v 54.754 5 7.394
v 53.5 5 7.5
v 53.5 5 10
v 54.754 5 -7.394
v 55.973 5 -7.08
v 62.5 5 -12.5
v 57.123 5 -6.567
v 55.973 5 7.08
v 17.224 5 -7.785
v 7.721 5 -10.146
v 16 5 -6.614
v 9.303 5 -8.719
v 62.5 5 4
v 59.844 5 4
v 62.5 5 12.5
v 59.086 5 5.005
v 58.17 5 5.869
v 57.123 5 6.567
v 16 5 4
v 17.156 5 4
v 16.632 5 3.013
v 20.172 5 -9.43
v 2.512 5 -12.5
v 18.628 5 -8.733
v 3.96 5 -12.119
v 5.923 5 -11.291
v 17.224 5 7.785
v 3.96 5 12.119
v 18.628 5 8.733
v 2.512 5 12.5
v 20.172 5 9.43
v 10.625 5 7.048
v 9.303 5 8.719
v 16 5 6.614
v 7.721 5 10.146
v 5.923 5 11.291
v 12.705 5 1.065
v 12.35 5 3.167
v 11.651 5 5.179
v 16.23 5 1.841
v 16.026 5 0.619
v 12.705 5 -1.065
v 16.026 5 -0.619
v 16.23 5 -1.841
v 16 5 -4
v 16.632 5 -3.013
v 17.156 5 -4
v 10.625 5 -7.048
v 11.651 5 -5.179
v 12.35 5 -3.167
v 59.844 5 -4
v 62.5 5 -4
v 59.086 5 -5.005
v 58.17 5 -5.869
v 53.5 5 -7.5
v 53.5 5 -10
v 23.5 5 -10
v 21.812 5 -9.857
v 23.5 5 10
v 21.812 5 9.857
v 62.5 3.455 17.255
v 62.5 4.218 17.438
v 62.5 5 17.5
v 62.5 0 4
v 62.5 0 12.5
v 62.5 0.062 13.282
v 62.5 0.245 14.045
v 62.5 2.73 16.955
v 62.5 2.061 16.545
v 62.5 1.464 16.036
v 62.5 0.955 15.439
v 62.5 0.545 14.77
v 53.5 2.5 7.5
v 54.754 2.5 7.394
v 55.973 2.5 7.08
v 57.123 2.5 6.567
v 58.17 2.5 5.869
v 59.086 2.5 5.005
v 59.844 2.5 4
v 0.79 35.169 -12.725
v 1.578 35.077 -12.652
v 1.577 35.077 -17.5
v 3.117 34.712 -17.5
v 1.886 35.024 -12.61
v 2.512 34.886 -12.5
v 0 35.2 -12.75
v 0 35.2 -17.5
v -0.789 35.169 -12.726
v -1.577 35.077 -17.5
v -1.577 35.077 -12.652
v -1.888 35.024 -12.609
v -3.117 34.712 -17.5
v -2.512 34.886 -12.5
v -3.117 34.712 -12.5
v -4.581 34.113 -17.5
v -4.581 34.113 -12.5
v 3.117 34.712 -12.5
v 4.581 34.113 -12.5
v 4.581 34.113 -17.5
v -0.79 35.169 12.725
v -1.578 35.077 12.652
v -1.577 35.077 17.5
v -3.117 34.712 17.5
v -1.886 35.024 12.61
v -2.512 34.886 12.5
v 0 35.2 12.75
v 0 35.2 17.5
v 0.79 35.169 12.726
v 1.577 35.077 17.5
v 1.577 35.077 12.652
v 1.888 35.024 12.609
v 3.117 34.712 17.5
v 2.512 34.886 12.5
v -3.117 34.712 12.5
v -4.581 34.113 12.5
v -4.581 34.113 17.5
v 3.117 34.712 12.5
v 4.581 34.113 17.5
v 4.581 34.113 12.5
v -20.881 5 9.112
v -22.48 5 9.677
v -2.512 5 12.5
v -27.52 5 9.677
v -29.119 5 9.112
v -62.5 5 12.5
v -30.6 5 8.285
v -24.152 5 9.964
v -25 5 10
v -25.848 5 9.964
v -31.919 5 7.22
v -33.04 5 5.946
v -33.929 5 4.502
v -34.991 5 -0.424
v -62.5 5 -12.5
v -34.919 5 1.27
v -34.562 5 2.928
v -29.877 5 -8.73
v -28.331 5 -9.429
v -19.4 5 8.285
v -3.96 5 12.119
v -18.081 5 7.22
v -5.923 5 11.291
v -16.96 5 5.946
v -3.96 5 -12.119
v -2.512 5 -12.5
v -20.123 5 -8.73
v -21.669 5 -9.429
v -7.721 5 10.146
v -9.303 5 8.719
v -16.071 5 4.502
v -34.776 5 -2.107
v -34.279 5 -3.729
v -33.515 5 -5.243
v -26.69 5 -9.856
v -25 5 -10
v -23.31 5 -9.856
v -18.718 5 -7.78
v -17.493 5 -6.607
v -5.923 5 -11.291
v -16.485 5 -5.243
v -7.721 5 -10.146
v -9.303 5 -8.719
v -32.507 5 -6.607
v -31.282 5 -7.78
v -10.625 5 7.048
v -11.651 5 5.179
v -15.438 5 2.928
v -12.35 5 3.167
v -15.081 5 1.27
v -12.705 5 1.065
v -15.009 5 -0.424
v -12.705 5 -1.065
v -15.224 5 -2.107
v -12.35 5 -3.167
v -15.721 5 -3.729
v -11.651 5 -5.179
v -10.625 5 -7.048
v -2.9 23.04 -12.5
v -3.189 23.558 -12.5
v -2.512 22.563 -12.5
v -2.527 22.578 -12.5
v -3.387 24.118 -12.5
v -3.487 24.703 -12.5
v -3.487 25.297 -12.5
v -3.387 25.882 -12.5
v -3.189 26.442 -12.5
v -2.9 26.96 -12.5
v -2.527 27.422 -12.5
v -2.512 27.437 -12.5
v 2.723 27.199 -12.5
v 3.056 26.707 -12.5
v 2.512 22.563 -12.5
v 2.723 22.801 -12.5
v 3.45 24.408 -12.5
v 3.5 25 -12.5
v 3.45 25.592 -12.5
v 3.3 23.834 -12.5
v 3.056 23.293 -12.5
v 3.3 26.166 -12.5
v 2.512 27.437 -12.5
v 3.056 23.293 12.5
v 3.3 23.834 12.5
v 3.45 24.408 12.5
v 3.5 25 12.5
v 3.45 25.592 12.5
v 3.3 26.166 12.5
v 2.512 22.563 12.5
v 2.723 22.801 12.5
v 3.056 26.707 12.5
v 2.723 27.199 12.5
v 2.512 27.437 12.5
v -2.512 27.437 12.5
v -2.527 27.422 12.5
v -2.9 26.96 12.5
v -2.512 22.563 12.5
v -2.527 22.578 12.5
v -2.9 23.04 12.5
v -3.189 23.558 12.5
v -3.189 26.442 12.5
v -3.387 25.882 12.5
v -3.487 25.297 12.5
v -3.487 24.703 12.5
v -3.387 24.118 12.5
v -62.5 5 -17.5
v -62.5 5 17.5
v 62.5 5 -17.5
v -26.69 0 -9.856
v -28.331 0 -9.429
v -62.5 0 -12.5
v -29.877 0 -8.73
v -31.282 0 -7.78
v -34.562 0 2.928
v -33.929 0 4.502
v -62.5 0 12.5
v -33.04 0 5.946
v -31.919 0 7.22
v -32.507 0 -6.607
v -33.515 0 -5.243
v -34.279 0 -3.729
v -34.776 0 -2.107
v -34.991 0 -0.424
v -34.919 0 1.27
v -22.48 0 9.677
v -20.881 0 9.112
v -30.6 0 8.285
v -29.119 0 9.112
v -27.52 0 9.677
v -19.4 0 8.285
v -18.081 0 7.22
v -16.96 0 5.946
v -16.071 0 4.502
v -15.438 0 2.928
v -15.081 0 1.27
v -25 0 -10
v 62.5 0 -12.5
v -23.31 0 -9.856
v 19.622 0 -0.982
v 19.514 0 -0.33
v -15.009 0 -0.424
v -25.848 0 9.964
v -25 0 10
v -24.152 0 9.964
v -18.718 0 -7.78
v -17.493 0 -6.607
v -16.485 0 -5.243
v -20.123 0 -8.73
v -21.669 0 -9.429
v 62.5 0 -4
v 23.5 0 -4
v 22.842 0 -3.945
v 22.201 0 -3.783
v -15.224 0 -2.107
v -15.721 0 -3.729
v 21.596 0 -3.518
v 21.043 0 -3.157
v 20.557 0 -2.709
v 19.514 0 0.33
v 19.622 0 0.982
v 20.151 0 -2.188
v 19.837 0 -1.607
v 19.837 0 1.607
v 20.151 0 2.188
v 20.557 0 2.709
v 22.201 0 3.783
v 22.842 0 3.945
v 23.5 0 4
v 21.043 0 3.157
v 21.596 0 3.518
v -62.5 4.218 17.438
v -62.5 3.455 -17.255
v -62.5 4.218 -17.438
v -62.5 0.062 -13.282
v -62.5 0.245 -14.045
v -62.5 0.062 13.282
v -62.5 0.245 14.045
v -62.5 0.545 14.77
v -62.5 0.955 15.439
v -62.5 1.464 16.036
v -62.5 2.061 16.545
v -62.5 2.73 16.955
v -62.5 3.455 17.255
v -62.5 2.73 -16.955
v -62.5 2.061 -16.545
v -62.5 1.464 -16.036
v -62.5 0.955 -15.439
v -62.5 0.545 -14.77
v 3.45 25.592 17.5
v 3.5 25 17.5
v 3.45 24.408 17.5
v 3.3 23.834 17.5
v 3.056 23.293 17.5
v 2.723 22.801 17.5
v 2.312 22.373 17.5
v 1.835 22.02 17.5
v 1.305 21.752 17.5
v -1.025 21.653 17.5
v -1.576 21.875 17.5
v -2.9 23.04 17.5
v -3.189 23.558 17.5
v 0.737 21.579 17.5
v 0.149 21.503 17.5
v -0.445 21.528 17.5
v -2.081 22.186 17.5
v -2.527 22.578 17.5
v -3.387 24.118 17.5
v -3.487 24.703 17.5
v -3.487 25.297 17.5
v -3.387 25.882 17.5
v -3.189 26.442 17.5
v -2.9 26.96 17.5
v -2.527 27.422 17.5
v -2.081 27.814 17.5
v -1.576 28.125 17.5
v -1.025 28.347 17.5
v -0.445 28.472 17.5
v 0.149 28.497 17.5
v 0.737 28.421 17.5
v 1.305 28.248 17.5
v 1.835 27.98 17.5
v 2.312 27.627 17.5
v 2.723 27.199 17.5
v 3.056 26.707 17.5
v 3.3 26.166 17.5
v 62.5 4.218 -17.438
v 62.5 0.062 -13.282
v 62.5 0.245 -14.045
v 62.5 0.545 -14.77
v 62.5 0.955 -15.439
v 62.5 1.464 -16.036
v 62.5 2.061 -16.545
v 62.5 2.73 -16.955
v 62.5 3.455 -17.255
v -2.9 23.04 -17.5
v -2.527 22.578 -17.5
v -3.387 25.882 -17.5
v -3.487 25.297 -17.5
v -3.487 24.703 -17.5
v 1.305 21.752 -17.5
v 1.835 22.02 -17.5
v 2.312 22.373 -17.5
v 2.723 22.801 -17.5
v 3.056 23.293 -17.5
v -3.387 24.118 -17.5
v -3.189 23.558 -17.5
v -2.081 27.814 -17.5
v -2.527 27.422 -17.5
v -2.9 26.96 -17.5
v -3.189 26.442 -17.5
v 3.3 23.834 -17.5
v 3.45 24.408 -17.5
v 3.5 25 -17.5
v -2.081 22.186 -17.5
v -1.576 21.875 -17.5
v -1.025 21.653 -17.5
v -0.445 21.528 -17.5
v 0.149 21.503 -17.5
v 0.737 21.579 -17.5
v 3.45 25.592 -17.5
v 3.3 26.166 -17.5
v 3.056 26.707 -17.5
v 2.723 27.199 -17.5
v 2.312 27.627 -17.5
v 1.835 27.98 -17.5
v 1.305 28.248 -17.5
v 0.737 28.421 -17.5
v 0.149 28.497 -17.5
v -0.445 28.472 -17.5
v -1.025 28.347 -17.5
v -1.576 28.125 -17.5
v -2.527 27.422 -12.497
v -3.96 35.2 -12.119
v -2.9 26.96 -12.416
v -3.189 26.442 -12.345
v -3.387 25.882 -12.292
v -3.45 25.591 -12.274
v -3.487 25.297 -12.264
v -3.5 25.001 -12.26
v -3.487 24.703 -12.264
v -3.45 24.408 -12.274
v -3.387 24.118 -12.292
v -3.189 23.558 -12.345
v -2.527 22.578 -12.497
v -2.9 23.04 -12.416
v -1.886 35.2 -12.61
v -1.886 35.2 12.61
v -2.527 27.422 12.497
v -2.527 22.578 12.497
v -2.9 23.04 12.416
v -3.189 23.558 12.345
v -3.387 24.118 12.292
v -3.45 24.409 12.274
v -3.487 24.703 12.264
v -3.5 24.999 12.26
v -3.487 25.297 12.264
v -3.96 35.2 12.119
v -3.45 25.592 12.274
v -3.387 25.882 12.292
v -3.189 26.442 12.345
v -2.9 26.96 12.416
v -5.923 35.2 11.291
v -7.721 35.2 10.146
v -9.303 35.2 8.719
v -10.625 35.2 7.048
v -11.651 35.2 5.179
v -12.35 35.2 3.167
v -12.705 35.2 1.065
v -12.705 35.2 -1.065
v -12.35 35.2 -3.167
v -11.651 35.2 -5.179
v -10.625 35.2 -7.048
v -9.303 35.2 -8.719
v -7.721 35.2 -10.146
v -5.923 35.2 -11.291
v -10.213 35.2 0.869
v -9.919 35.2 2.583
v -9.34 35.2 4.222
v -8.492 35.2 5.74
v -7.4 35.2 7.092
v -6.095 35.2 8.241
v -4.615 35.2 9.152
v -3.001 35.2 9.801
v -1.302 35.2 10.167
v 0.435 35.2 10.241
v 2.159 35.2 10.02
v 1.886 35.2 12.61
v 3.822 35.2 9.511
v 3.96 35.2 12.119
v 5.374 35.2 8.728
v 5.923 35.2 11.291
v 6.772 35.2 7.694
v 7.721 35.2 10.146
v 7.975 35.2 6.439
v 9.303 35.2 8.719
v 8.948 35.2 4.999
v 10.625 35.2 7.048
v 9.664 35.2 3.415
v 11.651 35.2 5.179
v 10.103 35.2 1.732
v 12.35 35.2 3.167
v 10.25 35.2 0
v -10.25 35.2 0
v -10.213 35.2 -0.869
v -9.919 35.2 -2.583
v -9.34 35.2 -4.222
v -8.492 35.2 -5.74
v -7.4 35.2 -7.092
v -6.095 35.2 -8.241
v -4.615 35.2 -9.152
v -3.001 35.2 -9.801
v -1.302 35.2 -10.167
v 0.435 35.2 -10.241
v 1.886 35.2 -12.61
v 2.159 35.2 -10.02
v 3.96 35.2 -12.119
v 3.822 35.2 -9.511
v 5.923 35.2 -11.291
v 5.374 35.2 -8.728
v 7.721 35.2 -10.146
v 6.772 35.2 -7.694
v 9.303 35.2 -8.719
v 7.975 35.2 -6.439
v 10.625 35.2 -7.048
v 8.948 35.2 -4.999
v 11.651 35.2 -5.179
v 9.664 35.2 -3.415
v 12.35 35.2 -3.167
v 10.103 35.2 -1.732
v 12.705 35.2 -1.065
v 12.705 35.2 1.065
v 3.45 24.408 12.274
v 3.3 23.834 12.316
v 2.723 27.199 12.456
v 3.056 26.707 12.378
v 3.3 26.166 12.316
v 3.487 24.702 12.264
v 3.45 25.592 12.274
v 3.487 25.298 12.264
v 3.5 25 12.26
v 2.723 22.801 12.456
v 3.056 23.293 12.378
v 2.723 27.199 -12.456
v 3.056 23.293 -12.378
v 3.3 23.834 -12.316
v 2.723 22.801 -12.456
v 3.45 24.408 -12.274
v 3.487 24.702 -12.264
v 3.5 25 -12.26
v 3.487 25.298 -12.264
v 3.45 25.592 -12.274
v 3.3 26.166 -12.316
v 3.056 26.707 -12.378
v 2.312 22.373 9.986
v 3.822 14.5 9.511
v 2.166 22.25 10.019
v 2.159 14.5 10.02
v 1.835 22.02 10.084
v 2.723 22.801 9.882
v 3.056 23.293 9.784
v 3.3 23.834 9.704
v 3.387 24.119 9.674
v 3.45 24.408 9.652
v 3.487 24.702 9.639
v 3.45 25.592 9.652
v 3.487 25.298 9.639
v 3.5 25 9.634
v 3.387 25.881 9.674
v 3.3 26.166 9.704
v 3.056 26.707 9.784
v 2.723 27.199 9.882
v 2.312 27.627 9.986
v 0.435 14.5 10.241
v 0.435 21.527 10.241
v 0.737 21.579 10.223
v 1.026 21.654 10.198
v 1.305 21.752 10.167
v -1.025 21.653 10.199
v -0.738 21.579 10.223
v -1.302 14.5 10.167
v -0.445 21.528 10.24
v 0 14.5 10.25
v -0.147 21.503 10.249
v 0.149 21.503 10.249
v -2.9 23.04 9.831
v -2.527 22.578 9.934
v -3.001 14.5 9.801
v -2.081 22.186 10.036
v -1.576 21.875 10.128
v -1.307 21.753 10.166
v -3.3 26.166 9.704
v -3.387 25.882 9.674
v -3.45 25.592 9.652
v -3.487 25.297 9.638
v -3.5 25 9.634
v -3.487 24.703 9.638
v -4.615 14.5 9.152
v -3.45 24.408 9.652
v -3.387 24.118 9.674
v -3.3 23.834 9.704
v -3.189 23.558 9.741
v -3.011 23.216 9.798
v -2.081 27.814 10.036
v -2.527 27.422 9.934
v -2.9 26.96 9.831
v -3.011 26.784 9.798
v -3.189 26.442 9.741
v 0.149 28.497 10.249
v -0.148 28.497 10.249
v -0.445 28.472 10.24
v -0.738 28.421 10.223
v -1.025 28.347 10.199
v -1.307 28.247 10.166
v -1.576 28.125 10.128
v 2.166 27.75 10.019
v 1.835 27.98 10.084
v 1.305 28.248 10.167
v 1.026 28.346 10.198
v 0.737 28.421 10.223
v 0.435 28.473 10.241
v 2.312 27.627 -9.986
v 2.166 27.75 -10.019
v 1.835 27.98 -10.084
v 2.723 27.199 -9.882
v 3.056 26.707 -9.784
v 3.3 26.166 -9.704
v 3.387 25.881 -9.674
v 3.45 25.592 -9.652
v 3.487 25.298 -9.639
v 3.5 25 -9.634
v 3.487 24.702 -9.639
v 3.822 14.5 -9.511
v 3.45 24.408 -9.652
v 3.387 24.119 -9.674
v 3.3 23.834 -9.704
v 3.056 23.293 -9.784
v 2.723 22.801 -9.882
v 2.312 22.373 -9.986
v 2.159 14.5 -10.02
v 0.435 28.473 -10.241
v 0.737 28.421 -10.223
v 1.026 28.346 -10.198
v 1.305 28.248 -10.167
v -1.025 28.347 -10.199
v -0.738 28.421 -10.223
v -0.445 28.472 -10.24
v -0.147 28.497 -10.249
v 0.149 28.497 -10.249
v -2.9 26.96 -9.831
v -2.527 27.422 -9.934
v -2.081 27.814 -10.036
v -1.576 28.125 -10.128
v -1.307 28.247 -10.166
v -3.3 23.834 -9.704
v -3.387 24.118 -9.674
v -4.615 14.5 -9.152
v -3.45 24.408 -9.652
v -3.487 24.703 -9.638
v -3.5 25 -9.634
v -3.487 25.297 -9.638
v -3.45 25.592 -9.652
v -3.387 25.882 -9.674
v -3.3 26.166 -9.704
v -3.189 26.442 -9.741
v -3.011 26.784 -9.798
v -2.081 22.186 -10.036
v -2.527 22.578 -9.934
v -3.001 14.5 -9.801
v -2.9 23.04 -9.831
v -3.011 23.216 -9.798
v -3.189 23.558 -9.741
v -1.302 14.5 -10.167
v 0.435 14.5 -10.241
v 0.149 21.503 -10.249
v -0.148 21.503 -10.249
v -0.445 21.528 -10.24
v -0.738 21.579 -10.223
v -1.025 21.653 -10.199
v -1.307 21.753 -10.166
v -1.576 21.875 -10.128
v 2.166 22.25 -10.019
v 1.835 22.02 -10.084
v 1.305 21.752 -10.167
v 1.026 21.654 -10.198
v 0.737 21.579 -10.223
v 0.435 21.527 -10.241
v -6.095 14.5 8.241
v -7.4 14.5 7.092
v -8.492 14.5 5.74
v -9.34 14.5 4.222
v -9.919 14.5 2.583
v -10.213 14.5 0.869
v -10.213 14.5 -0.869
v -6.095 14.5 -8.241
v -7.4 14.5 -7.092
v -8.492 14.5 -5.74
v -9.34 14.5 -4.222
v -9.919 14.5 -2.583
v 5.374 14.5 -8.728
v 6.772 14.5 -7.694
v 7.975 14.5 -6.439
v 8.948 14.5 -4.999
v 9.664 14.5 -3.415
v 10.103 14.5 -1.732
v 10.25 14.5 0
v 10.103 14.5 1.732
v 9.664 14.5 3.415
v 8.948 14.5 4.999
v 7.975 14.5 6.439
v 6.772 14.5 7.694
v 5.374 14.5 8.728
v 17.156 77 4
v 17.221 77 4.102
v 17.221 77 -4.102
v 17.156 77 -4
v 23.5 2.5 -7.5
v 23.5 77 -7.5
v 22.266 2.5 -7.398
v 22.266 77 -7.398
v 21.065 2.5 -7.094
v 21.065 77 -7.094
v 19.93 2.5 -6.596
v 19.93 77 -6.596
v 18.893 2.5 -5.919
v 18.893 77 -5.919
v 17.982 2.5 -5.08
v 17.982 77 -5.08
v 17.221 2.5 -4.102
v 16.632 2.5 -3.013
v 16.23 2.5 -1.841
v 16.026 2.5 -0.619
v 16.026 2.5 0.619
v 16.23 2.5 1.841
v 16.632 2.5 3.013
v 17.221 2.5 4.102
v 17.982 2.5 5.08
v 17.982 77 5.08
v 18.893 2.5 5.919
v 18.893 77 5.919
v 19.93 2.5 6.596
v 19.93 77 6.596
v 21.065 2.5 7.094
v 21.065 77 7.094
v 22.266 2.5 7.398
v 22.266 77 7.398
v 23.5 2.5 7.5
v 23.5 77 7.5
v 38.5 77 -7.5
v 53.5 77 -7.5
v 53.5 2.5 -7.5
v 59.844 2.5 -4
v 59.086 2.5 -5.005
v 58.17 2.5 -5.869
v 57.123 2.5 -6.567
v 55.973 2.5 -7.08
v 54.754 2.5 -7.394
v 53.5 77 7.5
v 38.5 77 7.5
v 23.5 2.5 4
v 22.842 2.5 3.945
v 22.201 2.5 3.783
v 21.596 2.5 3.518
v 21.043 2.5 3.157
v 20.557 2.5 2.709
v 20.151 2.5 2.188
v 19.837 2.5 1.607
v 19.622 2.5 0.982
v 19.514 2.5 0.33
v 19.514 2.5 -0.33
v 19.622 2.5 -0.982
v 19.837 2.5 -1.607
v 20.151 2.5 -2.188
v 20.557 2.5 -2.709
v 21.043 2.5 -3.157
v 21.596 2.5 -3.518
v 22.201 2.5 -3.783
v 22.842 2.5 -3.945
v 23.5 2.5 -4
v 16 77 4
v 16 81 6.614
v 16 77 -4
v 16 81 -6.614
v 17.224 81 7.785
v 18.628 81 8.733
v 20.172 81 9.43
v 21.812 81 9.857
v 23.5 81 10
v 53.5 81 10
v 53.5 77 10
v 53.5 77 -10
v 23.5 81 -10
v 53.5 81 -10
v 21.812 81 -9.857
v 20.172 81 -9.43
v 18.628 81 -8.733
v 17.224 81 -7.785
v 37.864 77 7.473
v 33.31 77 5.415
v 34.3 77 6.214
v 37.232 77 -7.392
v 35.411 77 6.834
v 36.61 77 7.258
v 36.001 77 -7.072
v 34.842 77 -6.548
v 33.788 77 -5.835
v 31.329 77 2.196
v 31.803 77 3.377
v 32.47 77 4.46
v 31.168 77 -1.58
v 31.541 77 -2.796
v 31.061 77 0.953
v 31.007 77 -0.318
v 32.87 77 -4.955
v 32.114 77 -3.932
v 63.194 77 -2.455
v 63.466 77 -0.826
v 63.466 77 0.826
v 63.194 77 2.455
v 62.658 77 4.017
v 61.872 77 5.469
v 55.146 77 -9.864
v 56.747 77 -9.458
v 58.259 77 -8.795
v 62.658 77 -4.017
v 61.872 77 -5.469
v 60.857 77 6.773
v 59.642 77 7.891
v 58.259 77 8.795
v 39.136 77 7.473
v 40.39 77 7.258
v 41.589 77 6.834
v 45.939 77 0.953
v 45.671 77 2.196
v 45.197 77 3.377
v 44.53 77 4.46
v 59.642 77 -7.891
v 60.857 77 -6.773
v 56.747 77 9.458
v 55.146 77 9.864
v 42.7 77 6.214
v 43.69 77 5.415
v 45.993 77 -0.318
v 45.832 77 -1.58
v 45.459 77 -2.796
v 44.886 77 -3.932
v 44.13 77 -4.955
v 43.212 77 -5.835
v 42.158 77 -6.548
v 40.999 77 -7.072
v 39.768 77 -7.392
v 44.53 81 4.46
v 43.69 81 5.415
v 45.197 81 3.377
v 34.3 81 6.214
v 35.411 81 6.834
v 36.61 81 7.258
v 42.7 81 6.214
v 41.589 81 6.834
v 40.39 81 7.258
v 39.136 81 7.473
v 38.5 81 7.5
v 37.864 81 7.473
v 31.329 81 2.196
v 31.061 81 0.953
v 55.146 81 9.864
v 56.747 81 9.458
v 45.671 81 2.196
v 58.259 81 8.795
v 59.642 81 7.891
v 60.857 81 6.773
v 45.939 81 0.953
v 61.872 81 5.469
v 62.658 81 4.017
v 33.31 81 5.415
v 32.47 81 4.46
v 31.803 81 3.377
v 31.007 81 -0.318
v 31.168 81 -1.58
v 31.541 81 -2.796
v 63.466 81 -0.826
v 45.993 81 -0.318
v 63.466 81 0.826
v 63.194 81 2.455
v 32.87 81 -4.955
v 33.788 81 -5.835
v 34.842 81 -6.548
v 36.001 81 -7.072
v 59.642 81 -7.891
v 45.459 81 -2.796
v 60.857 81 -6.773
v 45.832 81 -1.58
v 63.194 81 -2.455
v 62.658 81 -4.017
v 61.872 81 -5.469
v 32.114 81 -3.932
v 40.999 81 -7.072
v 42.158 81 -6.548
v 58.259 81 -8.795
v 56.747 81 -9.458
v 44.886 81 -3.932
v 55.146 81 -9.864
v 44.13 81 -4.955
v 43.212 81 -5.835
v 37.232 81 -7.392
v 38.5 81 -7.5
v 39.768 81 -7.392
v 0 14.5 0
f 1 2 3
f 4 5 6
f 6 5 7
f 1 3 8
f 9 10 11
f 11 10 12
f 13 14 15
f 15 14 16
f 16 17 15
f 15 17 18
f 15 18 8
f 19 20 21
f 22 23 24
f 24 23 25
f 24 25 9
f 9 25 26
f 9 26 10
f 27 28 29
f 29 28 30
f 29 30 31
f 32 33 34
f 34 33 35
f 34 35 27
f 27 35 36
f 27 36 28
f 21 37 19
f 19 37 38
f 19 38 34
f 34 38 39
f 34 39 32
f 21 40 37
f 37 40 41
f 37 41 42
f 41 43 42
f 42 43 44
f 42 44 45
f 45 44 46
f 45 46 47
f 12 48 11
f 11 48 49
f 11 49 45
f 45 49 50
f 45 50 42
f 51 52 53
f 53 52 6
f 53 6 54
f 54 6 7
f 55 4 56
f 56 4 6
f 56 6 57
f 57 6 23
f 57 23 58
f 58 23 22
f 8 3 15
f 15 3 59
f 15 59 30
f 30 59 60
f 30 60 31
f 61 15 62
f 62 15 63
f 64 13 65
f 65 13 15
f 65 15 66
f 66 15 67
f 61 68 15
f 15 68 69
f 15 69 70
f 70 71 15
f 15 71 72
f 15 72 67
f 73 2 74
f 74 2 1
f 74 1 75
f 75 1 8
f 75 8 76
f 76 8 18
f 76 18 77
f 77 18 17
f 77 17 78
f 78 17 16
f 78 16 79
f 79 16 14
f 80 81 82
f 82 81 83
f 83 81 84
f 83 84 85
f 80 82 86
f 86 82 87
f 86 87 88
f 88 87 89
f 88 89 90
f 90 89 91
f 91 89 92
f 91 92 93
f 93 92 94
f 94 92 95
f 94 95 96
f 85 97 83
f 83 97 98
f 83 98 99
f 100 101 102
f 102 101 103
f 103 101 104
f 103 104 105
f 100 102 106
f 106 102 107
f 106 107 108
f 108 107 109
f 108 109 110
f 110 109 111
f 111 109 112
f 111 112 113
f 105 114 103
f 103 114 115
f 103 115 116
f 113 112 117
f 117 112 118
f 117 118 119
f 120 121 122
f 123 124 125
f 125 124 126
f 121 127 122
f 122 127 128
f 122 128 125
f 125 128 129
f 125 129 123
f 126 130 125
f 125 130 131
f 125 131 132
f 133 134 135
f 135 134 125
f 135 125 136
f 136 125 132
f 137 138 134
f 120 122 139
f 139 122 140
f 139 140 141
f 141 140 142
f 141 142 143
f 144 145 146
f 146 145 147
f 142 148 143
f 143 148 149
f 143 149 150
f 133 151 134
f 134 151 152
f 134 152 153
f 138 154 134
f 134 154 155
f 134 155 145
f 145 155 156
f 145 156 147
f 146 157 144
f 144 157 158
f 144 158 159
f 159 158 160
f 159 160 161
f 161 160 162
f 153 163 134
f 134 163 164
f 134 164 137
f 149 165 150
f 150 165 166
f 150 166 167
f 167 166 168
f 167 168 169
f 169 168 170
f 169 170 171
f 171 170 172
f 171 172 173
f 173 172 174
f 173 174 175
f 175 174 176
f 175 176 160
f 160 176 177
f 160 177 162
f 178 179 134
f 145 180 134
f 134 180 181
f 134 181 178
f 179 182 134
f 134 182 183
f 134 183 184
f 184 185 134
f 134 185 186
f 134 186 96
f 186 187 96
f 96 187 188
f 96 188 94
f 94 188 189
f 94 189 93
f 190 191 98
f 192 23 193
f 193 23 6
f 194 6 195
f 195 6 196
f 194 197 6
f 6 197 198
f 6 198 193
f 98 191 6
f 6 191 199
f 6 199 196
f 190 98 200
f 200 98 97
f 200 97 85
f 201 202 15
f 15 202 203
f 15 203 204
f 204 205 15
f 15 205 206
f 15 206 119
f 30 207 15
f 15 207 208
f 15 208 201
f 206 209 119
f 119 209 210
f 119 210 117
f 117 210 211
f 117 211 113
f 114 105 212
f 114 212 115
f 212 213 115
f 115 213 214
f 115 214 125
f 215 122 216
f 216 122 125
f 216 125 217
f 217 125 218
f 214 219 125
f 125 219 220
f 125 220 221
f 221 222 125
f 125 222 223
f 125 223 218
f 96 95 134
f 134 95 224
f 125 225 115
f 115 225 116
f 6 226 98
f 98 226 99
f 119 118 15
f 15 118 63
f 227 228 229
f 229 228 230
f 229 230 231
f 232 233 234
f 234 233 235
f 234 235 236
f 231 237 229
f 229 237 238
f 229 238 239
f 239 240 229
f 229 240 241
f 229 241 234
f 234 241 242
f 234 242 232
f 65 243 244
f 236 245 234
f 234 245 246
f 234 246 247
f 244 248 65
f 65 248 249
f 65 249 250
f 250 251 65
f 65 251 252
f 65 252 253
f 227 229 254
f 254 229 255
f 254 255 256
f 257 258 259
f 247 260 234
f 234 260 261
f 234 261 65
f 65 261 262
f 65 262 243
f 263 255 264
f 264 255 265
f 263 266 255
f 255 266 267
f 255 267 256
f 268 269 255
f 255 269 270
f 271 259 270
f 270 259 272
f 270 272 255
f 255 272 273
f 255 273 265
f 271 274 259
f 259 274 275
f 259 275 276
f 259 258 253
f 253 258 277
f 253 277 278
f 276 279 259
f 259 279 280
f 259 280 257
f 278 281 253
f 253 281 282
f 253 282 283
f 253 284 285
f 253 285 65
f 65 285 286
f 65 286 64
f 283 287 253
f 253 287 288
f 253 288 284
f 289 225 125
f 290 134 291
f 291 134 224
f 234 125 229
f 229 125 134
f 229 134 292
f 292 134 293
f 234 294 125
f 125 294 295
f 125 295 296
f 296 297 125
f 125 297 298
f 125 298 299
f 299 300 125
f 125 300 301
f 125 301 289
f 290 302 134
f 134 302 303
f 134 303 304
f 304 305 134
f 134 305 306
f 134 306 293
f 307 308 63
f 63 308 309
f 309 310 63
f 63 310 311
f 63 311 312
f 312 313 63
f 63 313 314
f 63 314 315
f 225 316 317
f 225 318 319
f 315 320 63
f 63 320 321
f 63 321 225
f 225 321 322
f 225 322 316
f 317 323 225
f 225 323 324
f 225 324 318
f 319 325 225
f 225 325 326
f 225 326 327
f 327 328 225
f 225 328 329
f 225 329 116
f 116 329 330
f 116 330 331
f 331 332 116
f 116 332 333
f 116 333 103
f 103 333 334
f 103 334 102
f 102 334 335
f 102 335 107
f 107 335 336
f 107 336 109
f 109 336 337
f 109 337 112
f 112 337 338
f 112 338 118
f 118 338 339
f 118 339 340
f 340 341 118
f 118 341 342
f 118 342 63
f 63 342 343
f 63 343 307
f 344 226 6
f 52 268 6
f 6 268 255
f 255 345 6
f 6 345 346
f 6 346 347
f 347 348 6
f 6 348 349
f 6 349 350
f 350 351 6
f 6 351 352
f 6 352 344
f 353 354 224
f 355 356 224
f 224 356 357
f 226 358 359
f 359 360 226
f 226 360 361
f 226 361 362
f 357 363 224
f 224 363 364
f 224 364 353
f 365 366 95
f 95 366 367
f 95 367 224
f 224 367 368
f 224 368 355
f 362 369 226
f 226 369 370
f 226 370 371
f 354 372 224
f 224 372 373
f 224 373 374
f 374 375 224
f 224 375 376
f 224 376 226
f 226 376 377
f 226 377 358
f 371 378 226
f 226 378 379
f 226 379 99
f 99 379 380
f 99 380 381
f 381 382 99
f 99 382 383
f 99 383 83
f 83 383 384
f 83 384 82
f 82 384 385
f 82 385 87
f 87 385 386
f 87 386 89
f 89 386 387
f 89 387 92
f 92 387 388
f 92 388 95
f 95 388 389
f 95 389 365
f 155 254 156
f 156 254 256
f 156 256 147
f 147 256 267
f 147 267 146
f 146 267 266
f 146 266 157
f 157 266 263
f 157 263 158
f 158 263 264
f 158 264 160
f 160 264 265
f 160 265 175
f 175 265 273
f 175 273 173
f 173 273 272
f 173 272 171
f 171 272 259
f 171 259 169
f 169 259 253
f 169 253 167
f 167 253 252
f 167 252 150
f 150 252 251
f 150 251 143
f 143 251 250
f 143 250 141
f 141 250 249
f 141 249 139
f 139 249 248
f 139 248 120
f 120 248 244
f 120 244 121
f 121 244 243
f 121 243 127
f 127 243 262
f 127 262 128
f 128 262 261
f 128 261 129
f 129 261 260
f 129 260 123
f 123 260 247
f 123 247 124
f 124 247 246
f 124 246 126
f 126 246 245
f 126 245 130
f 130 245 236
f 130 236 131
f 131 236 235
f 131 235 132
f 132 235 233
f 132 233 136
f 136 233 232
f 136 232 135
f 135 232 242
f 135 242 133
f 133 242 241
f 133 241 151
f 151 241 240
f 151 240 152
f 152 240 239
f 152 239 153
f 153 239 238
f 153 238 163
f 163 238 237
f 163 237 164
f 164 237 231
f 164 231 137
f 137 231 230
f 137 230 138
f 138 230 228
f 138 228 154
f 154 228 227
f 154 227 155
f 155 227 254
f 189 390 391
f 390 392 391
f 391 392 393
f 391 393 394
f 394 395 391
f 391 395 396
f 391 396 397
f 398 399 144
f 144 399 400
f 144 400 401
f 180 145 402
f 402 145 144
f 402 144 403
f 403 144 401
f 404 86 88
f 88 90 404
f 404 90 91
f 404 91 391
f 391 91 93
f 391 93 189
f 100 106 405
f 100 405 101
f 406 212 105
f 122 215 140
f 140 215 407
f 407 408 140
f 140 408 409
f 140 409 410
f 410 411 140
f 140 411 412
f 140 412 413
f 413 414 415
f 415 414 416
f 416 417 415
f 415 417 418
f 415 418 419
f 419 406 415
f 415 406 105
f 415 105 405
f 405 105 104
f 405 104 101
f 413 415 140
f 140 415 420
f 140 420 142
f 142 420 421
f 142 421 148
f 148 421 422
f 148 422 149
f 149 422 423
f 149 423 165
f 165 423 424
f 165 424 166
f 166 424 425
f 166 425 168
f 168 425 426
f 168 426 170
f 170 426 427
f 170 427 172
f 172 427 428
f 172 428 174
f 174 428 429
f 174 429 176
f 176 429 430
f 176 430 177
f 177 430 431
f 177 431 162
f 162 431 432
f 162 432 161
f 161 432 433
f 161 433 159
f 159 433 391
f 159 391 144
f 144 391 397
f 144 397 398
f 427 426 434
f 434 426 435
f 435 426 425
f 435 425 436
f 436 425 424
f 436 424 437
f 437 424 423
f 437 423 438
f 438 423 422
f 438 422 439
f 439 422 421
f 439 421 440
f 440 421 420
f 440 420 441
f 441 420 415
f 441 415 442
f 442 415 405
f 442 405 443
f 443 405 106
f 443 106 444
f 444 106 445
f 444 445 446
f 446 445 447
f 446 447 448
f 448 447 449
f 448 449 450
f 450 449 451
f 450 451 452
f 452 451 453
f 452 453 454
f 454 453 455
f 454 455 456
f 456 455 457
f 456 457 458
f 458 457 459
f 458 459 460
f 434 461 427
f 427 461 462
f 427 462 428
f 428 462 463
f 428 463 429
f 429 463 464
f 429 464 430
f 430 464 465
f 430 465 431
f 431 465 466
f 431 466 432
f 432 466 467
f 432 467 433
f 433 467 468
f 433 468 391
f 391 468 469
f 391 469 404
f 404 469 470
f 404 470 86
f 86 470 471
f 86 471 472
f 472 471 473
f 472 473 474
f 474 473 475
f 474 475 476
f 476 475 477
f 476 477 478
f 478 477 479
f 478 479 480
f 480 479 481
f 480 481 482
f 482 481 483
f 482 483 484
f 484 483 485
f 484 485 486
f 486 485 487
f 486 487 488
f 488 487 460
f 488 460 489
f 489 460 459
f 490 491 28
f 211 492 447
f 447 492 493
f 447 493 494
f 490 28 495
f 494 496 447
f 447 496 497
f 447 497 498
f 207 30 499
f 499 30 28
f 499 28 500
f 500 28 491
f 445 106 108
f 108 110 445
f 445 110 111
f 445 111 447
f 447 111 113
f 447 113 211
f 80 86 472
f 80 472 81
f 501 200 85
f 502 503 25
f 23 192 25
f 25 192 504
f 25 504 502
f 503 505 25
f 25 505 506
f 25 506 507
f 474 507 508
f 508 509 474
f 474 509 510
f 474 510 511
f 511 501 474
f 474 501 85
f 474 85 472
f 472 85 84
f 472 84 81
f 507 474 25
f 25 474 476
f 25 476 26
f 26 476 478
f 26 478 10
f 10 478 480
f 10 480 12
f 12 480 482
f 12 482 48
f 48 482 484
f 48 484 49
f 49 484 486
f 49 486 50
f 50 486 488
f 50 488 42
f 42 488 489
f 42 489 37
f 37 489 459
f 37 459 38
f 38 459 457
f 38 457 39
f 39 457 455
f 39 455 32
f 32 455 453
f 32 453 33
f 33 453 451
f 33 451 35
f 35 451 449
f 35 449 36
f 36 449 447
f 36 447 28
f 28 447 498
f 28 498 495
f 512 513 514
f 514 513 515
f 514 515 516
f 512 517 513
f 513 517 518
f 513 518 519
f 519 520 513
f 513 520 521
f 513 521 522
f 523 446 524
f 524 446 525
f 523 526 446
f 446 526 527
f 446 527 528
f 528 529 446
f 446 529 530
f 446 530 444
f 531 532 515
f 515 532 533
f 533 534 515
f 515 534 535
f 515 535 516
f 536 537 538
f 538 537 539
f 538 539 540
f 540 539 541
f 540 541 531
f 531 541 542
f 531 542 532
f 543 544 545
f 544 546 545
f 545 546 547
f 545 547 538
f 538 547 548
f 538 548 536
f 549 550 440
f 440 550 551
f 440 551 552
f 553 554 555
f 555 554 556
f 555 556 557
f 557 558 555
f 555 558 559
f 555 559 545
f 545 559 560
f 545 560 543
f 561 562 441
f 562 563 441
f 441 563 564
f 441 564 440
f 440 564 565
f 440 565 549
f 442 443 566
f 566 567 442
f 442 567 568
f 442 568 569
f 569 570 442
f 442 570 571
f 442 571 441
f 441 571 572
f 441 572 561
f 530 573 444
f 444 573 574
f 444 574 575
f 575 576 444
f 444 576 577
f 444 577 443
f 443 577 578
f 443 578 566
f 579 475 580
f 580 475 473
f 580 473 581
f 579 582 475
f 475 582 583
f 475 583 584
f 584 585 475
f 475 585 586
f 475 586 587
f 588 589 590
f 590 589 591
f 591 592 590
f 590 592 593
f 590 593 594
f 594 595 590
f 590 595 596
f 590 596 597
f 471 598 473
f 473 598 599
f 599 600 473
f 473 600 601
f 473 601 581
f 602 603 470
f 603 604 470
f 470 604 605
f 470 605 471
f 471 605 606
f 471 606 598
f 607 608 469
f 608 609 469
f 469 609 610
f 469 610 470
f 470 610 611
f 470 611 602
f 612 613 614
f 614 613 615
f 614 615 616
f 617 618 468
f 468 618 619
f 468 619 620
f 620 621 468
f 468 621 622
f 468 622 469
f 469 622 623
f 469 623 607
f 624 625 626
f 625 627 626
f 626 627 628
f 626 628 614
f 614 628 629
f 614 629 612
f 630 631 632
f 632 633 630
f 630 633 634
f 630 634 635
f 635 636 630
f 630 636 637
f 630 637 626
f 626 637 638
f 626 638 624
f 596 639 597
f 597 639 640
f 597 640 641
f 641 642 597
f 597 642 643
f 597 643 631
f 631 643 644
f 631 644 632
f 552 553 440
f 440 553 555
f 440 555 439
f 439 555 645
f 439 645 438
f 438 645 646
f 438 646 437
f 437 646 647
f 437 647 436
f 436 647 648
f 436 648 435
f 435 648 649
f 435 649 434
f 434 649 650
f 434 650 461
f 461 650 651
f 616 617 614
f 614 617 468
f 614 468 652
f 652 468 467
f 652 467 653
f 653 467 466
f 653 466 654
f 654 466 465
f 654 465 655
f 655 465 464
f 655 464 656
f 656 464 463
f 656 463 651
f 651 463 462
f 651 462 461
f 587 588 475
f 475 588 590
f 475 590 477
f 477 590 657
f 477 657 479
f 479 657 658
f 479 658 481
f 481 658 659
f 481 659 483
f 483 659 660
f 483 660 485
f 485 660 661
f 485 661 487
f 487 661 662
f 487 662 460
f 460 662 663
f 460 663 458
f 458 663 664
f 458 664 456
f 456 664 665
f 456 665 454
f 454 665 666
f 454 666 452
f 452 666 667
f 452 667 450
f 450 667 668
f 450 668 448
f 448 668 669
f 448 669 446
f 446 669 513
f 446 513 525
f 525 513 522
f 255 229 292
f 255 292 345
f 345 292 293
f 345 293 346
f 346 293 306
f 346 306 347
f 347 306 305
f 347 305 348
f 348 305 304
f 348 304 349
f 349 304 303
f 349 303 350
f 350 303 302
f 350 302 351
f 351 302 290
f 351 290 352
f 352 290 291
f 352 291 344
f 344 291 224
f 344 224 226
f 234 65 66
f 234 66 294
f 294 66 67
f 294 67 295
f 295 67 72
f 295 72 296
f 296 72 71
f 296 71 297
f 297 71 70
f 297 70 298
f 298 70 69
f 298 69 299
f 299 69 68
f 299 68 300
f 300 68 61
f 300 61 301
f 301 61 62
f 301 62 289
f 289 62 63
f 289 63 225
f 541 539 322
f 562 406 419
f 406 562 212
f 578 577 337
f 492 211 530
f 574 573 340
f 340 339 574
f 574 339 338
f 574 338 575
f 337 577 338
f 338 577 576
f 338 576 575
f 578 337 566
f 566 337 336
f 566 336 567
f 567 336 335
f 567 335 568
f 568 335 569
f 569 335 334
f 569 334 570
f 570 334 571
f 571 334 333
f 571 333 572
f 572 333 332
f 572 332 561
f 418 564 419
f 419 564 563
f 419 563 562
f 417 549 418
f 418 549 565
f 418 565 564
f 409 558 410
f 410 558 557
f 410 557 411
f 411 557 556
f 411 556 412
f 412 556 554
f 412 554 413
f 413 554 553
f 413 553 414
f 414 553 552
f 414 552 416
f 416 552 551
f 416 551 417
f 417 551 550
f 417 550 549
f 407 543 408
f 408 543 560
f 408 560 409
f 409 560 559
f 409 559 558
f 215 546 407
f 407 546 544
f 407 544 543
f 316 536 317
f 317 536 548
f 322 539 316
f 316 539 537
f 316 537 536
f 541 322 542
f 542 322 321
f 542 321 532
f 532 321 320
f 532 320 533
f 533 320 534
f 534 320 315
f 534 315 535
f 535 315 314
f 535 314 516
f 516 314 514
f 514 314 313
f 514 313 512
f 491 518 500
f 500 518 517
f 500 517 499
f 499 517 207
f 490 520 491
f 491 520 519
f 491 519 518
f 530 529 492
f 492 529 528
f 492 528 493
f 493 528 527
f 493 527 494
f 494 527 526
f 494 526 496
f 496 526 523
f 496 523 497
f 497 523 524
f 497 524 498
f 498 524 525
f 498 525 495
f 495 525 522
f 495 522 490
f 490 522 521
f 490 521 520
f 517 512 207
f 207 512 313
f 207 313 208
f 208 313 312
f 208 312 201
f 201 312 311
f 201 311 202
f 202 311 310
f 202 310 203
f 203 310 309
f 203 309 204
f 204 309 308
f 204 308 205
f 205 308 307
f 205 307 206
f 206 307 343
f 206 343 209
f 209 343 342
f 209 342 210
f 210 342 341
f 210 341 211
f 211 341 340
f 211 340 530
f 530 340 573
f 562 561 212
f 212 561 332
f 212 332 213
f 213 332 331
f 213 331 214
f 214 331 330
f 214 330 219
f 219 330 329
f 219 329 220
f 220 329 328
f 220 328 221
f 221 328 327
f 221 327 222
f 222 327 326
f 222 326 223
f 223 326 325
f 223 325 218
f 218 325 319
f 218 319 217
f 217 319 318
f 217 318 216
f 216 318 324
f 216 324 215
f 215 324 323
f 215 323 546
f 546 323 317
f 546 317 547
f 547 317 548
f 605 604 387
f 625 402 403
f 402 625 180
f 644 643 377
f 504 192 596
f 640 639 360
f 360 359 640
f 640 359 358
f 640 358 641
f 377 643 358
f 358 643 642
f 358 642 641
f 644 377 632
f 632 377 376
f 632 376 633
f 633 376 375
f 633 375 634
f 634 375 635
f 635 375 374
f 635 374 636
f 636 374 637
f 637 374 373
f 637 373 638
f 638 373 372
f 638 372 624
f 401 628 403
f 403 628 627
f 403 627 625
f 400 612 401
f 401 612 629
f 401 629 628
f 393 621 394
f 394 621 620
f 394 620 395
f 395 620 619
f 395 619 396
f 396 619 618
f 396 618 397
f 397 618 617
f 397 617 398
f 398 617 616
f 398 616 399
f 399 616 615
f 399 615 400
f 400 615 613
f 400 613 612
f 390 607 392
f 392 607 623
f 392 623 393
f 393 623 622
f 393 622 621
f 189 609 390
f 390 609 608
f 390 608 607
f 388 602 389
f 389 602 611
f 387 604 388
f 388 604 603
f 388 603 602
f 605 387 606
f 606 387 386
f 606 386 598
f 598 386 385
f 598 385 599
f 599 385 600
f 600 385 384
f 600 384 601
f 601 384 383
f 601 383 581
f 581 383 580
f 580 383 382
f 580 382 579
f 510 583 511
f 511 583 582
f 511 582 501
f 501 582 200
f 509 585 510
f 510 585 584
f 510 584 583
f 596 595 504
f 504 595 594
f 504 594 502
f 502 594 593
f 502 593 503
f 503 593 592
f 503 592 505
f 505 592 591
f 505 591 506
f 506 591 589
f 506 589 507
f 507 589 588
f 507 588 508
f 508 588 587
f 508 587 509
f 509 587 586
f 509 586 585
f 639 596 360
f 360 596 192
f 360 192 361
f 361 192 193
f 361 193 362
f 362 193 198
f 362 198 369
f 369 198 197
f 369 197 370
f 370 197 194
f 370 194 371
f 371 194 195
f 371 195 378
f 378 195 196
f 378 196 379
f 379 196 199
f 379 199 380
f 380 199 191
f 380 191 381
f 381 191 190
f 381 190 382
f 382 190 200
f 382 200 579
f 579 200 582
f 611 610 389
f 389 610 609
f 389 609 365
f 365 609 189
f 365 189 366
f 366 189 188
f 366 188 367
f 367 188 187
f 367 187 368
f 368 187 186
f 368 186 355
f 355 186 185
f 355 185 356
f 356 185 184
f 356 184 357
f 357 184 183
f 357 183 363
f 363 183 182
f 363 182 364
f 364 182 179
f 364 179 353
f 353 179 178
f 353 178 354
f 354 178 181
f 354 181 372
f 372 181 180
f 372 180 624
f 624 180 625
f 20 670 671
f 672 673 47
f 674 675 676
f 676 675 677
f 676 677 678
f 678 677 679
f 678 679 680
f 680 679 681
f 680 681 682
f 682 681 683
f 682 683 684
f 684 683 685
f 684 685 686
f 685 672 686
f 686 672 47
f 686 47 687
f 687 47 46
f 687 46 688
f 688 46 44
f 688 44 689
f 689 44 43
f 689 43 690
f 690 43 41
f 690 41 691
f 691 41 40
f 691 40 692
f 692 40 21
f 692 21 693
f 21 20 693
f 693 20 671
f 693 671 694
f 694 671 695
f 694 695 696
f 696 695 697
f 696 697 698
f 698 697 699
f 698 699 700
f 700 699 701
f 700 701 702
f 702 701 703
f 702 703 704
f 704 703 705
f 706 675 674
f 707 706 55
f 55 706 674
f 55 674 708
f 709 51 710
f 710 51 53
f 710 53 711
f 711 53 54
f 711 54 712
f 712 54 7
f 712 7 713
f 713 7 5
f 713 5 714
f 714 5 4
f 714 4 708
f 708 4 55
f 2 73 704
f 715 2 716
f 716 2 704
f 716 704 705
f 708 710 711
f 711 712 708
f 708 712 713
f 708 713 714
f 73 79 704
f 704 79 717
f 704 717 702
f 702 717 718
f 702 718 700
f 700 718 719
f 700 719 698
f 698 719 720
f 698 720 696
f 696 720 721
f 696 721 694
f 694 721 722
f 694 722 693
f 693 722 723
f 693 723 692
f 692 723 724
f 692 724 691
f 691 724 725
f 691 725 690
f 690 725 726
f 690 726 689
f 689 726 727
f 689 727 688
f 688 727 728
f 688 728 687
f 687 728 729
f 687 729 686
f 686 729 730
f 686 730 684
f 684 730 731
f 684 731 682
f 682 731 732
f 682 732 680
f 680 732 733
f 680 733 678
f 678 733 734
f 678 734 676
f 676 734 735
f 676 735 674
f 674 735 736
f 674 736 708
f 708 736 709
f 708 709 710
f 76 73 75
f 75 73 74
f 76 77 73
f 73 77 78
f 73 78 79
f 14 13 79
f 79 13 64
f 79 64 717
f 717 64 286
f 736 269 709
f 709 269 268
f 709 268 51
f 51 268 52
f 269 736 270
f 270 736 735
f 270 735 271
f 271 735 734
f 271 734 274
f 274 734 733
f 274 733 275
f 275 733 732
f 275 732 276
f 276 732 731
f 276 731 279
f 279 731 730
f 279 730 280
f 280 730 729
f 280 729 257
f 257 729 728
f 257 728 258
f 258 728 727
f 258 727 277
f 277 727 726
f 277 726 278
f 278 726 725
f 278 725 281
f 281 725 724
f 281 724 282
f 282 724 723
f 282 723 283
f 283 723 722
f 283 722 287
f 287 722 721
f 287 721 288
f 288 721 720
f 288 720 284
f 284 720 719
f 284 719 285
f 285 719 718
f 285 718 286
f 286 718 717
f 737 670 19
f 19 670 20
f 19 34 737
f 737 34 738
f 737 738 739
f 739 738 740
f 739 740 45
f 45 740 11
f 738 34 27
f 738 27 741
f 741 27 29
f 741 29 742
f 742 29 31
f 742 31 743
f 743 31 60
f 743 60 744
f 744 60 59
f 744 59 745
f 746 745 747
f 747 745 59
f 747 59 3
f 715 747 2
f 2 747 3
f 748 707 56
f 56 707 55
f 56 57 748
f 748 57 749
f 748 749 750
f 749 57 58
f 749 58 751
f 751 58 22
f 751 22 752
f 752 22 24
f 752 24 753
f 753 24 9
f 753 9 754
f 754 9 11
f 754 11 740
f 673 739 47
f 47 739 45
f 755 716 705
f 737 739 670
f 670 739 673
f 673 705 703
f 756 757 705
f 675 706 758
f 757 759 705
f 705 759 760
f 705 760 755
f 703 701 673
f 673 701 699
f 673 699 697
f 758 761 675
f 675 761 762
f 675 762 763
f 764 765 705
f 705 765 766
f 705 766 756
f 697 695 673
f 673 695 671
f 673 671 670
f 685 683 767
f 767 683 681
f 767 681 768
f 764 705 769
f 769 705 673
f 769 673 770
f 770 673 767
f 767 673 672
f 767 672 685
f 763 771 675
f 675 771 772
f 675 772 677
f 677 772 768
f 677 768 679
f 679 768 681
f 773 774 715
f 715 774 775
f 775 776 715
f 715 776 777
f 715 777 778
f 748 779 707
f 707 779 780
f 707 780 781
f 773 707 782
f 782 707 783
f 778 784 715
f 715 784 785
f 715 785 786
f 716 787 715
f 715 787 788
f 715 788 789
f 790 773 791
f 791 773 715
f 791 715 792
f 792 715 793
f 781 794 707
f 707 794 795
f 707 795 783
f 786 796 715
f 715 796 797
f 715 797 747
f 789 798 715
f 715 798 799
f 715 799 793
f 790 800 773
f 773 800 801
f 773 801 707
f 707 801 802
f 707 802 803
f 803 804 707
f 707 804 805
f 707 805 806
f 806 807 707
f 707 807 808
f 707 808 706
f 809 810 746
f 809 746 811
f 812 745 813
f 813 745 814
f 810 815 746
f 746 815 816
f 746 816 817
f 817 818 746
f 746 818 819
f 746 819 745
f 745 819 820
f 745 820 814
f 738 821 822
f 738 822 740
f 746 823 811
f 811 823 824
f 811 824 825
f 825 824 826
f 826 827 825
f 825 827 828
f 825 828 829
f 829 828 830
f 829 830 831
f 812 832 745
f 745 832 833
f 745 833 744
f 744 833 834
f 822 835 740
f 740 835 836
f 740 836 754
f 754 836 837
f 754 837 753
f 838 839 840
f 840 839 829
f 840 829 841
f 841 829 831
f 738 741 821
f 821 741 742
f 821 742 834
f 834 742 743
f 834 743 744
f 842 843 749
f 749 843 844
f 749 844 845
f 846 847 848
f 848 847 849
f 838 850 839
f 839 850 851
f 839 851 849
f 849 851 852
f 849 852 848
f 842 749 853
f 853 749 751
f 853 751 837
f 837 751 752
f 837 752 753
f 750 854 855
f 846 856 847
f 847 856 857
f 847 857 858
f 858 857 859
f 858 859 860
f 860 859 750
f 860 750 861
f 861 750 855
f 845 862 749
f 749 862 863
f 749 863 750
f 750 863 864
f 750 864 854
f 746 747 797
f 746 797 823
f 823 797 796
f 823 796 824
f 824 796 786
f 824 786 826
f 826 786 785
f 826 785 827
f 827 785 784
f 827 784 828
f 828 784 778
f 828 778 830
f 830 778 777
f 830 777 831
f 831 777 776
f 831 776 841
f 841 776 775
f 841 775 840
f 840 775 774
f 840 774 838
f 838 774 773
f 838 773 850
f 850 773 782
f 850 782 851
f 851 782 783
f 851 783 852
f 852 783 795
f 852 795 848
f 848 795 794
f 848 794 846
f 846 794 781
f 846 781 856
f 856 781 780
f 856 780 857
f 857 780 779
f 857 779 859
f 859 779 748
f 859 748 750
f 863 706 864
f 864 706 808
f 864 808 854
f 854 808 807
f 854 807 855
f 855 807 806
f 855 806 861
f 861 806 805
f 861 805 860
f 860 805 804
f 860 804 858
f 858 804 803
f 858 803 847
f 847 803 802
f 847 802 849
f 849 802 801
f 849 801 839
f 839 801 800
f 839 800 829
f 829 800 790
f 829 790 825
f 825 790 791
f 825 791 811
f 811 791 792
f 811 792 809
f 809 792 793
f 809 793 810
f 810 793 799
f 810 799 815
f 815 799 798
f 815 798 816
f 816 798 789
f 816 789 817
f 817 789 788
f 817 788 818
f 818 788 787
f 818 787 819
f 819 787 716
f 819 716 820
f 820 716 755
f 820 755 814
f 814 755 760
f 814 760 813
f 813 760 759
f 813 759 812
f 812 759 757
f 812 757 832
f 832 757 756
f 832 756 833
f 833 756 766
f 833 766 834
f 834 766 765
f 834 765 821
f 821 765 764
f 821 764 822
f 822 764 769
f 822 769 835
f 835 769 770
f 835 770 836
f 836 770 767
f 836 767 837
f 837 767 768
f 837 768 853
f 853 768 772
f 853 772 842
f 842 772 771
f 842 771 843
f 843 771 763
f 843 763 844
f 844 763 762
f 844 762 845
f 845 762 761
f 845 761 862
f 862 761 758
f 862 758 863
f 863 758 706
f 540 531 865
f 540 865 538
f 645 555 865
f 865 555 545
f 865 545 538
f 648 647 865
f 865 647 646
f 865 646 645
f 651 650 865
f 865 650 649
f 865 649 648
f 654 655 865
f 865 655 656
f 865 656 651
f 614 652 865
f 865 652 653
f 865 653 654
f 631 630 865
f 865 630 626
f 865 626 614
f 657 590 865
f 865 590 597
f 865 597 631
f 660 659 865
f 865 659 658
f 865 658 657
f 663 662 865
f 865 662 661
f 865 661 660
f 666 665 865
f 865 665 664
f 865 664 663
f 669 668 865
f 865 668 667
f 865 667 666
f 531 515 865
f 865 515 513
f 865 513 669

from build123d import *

# Parameters (mm, degrees)
SKETCH2_W                       = 125
SKETCH2_H                       = 35
SKETCH2_R                       = 10
BOSS_EXTRUDE1_DEPTH             = 5
BOSS_EXTRUDE3_REACH             = 19.5
BOSS_EXTRUDE3_DIRECTION_2_REACH = 19.5
CUT_EXTRUDE2_DEPTH              = 12.5
CUT_EXTRUDE2_DEPTH_BACK         = 12.5
SKETCH8_R                       = 12.75
SKETCH8_R_2                     = 10.25
BOSS_EXTRUDE4_DEPTH             = 30.2
FILLET1_R                       = 5
SKETCH9_R                       = 3.5
CUT_EXTRUDE3_DEPTH              = 36.0000001
SKETCH13_R                      = 2
CUT_EXTRUDE5_DEPTH              = 2.5
CUT_EXTRUDE6_DEPTH              = 6
BOSS_EXTRUDE7_DEPTH             = 72
SKETCH17_R                      = 7.5
BOSS_EXTRUDE8_DEPTH             = 4
SKETCH18_R                      = 10.25
BOSS_EXTRUDE9_DEPTH             = 9.5


with BuildPart() as part:
    # Sketch2 → Boss-Extrude1 (new body)
    with BuildSketch(Plane(origin=(0, 0, 0), x_dir=(1, 0, 0), z_dir=(0, 1, 0))):
        Rectangle(SKETCH2_W, SKETCH2_H)
        with Locations((-25, 0)):
            Circle(SKETCH2_R, mode=Mode.SUBTRACT)
    extrude(amount=BOSS_EXTRUDE1_DEPTH)

    # Boss-Extrude3: up to this face of the body (flat: up to its plane)
    boss_extrude3_end = Plane(part.part.faces().sort_by_distance((0, 2.5, -17.5))[0])
    # Sketch6 → Boss-Extrude3 (add, up to the picked face)
    with BuildSketch(Plane.XY, mode=Mode.PRIVATE) as boss_extrude3_sk1:
        with BuildLine():
            Line((-62.5, 5), (-4.580943715, 34.11344911))
            ThreePointArc((-4.580943715, 34.11344911), (0, 35.2), (4.580943715, 34.11344911))
            Line((4.580943715, 34.11344911), (62.5, 5))
            Line((62.5, 5), (-62.5, 5))
        make_face()
    boss_extrude3_tool1 = split(extrude(boss_extrude3_sk1.sketch, amount=-BOSS_EXTRUDE3_REACH, mode=Mode.PRIVATE), bisect_by=boss_extrude3_end, keep=Keep.BOTH, mode=Mode.PRIVATE)
    add(boss_extrude3_tool1.solids().sort_by_distance((0, 15.43289, 0))[0])

    # Boss-Extrude3 direction 2: up to this face of the body (flat: up to its plane)
    boss_extrude3_direction_2_end = Plane(part.part.faces().sort_by_distance((0, 2.5, 17.5))[0])
    # Sketch6 → Boss-Extrude3 direction 2 (add, up to the picked face)
    with BuildSketch(Plane.XY, mode=Mode.PRIVATE) as boss_extrude3_direction_2_sk1:
        with BuildLine():
            Line((-62.5, 5), (-4.580943715, 34.11344911))
            ThreePointArc((-4.580943715, 34.11344911), (0, 35.2), (4.580943715, 34.11344911))
            Line((4.580943715, 34.11344911), (62.5, 5))
            Line((62.5, 5), (-62.5, 5))
        make_face()
    boss_extrude3_direction_2_tool1 = split(extrude(boss_extrude3_direction_2_sk1.sketch, amount=BOSS_EXTRUDE3_DIRECTION_2_REACH, mode=Mode.PRIVATE), bisect_by=boss_extrude3_direction_2_end, keep=Keep.BOTH, mode=Mode.PRIVATE)
    add(boss_extrude3_direction_2_tool1.solids().sort_by_distance((0, 15.43289, 0))[0])

    # Sketch7 → Cut-Extrude2 (cut, two sides)
    with BuildSketch(Plane.XY) as cut_extrude2_sk:
        with BuildLine():
            Line((4.580943715, 34.11344911), (62.5, 5))
            Line((62.5, 5), (-62.5, 5))
            Line((-62.5, 5), (-4.580943715, 34.11344911))
            ThreePointArc((-4.580943715, 34.11344911), (0, 35.2), (4.580943715, 34.11344911))
        make_face()
    extrude(amount=CUT_EXTRUDE2_DEPTH, mode=Mode.SUBTRACT)
    extrude(cut_extrude2_sk.sketch, amount=-CUT_EXTRUDE2_DEPTH_BACK, mode=Mode.SUBTRACT)

    # Sketch8 → Boss-Extrude4 (add)
    with BuildSketch(Plane(origin=(0, 5, 0), x_dir=(1, 0, 0), z_dir=(0, 1, 0))):
        Circle(SKETCH8_R)
        Circle(SKETCH8_R_2, mode=Mode.SUBTRACT)
    extrude(amount=BOSS_EXTRUDE4_DEPTH)

    # Fillet1
    fillet1_edges = [part.edges().sort_by_distance(p)[0] for p in [
        (0, 0, -17.5),
        (0, 0, 17.5),
    ]]
    fillet(fillet1_edges, radius=FILLET1_R)

    # Sketch9 → Cut-Extrude3 (cut, through all)
    with BuildSketch(Plane.XY.offset(17.5)):
        with Locations((0, 25)):
            Circle(SKETCH9_R)
    extrude(amount=-CUT_EXTRUDE3_DEPTH, mode=Mode.SUBTRACT)

    # Sketch13 → Cut-Extrude5 (cut)
    with BuildSketch(Plane(origin=(0, 5, 0), x_dir=(1, 0, 0), z_dir=(0, 1, 0))):
        with BuildLine():
            Line((23.5, 7.5), (53.5, 7.5))
            ThreePointArc((53.5, 7.5), (61, 0), (53.5, -7.5))
            Line((53.5, -7.5), (23.5, -7.5))
            ThreePointArc((23.5, -7.5), (16, 0), (23.5, 7.5))
        make_face()
        with Locations((31.5, 0)):
            Circle(SKETCH13_R, mode=Mode.SUBTRACT)
        with Locations((24.5, 0)):
            Circle(SKETCH13_R, mode=Mode.SUBTRACT)
        with Locations((38.5, 0)):
            Circle(SKETCH13_R, mode=Mode.SUBTRACT)
        with Locations((45.5, 0)):
            Circle(SKETCH13_R, mode=Mode.SUBTRACT)
        with Locations((52.5, 0)):
            Circle(SKETCH13_R, mode=Mode.SUBTRACT)
    extrude(amount=-CUT_EXTRUDE5_DEPTH, mode=Mode.SUBTRACT)

    # Sketch15 → Cut-Extrude6 (cut, through all)
    with BuildSketch(Plane(origin=(0, 5, 0), x_dir=(1, 0, 0), z_dir=(0, 1, 0))):
        with BuildLine():
            Line((23.5, 4), (53.5, 4))
            Line((53.5, 4), (62.5, 4))
            Line((62.5, 4), (62.5, -4))
            Line((62.5, -4), (53.5, -4))
            Line((53.5, -4), (23.5, -4))
            ThreePointArc((23.5, -4), (19.5, 0), (23.5, 4))
        make_face()
    extrude(amount=-CUT_EXTRUDE6_DEPTH, mode=Mode.SUBTRACT)

    # Sketch16 → Boss-Extrude7 (add)
    with BuildSketch(Plane(origin=(0, 5, 0), x_dir=(1, 0, 0), z_dir=(0, 1, 0))):
        with BuildLine():
            Line((16, -4), (16, -6.614378278))
            ThreePointArc((16, -6.614378278), (19.385621722, -9.114378278), (23.5, -10))
            Line((23.5, -10), (53.5, -10))
            Line((53.5, -10), (53.5, -7.5))
            Line((53.5, -7.5), (23.5, -7.5))
            ThreePointArc((23.5, -7.5), (19.877155813, -6.566962768), (17.15571123, -4))
            Line((17.15571123, -4), (16, -4))
        make_face()
        with BuildLine():
            Line((53.5, 10), (23.5, 10))
            ThreePointArc((23.5, 10), (19.385621722, 9.114378278), (16, 6.614378278))
            Line((16, 6.614378278), (16, 4))
            Line((16, 4), (17.15571123, 4))
            ThreePointArc((17.15571123, 4), (19.877155813, 6.566962768), (23.5, 7.5))
            Line((23.5, 7.5), (53.5, 7.5))
            Line((53.5, 7.5), (53.5, 10))
        make_face()
    extrude(amount=BOSS_EXTRUDE7_DEPTH)

    # Sketch17 → Boss-Extrude8 (add)
    with BuildSketch(Plane(origin=(0, 77, 0), x_dir=(1, 0, 0), z_dir=(0, 1, 0))):
        with BuildLine():
            Line((23.5, -10), (53.5, -10))
            ThreePointArc((53.5, -10), (63.5, 0), (53.5, 10))
            Line((53.5, 10), (23.5, 10))
            ThreePointArc((23.5, 10), (19.385621722, 9.114378278), (16, 6.614378278))
            Line((16, 6.614378278), (16, 4))
            Line((16, 4), (16, -4))
            Line((16, -4), (16, -6.614378278))
            ThreePointArc((16, -6.614378278), (19.385621722, -9.114378278), (23.5, -10))
        make_face()
        with Locations((38.5, 0)):
            Circle(SKETCH17_R, mode=Mode.SUBTRACT)
    extrude(amount=BOSS_EXTRUDE8_DEPTH)

    # Sketch18 → Boss-Extrude9 (add)
    with BuildSketch(Plane(origin=(0, 5, 0), x_dir=(1, 0, 0), z_dir=(0, 1, 0))):
        Circle(SKETCH18_R)
    extrude(amount=BOSS_EXTRUDE9_DEPTH)


solid = part.part
